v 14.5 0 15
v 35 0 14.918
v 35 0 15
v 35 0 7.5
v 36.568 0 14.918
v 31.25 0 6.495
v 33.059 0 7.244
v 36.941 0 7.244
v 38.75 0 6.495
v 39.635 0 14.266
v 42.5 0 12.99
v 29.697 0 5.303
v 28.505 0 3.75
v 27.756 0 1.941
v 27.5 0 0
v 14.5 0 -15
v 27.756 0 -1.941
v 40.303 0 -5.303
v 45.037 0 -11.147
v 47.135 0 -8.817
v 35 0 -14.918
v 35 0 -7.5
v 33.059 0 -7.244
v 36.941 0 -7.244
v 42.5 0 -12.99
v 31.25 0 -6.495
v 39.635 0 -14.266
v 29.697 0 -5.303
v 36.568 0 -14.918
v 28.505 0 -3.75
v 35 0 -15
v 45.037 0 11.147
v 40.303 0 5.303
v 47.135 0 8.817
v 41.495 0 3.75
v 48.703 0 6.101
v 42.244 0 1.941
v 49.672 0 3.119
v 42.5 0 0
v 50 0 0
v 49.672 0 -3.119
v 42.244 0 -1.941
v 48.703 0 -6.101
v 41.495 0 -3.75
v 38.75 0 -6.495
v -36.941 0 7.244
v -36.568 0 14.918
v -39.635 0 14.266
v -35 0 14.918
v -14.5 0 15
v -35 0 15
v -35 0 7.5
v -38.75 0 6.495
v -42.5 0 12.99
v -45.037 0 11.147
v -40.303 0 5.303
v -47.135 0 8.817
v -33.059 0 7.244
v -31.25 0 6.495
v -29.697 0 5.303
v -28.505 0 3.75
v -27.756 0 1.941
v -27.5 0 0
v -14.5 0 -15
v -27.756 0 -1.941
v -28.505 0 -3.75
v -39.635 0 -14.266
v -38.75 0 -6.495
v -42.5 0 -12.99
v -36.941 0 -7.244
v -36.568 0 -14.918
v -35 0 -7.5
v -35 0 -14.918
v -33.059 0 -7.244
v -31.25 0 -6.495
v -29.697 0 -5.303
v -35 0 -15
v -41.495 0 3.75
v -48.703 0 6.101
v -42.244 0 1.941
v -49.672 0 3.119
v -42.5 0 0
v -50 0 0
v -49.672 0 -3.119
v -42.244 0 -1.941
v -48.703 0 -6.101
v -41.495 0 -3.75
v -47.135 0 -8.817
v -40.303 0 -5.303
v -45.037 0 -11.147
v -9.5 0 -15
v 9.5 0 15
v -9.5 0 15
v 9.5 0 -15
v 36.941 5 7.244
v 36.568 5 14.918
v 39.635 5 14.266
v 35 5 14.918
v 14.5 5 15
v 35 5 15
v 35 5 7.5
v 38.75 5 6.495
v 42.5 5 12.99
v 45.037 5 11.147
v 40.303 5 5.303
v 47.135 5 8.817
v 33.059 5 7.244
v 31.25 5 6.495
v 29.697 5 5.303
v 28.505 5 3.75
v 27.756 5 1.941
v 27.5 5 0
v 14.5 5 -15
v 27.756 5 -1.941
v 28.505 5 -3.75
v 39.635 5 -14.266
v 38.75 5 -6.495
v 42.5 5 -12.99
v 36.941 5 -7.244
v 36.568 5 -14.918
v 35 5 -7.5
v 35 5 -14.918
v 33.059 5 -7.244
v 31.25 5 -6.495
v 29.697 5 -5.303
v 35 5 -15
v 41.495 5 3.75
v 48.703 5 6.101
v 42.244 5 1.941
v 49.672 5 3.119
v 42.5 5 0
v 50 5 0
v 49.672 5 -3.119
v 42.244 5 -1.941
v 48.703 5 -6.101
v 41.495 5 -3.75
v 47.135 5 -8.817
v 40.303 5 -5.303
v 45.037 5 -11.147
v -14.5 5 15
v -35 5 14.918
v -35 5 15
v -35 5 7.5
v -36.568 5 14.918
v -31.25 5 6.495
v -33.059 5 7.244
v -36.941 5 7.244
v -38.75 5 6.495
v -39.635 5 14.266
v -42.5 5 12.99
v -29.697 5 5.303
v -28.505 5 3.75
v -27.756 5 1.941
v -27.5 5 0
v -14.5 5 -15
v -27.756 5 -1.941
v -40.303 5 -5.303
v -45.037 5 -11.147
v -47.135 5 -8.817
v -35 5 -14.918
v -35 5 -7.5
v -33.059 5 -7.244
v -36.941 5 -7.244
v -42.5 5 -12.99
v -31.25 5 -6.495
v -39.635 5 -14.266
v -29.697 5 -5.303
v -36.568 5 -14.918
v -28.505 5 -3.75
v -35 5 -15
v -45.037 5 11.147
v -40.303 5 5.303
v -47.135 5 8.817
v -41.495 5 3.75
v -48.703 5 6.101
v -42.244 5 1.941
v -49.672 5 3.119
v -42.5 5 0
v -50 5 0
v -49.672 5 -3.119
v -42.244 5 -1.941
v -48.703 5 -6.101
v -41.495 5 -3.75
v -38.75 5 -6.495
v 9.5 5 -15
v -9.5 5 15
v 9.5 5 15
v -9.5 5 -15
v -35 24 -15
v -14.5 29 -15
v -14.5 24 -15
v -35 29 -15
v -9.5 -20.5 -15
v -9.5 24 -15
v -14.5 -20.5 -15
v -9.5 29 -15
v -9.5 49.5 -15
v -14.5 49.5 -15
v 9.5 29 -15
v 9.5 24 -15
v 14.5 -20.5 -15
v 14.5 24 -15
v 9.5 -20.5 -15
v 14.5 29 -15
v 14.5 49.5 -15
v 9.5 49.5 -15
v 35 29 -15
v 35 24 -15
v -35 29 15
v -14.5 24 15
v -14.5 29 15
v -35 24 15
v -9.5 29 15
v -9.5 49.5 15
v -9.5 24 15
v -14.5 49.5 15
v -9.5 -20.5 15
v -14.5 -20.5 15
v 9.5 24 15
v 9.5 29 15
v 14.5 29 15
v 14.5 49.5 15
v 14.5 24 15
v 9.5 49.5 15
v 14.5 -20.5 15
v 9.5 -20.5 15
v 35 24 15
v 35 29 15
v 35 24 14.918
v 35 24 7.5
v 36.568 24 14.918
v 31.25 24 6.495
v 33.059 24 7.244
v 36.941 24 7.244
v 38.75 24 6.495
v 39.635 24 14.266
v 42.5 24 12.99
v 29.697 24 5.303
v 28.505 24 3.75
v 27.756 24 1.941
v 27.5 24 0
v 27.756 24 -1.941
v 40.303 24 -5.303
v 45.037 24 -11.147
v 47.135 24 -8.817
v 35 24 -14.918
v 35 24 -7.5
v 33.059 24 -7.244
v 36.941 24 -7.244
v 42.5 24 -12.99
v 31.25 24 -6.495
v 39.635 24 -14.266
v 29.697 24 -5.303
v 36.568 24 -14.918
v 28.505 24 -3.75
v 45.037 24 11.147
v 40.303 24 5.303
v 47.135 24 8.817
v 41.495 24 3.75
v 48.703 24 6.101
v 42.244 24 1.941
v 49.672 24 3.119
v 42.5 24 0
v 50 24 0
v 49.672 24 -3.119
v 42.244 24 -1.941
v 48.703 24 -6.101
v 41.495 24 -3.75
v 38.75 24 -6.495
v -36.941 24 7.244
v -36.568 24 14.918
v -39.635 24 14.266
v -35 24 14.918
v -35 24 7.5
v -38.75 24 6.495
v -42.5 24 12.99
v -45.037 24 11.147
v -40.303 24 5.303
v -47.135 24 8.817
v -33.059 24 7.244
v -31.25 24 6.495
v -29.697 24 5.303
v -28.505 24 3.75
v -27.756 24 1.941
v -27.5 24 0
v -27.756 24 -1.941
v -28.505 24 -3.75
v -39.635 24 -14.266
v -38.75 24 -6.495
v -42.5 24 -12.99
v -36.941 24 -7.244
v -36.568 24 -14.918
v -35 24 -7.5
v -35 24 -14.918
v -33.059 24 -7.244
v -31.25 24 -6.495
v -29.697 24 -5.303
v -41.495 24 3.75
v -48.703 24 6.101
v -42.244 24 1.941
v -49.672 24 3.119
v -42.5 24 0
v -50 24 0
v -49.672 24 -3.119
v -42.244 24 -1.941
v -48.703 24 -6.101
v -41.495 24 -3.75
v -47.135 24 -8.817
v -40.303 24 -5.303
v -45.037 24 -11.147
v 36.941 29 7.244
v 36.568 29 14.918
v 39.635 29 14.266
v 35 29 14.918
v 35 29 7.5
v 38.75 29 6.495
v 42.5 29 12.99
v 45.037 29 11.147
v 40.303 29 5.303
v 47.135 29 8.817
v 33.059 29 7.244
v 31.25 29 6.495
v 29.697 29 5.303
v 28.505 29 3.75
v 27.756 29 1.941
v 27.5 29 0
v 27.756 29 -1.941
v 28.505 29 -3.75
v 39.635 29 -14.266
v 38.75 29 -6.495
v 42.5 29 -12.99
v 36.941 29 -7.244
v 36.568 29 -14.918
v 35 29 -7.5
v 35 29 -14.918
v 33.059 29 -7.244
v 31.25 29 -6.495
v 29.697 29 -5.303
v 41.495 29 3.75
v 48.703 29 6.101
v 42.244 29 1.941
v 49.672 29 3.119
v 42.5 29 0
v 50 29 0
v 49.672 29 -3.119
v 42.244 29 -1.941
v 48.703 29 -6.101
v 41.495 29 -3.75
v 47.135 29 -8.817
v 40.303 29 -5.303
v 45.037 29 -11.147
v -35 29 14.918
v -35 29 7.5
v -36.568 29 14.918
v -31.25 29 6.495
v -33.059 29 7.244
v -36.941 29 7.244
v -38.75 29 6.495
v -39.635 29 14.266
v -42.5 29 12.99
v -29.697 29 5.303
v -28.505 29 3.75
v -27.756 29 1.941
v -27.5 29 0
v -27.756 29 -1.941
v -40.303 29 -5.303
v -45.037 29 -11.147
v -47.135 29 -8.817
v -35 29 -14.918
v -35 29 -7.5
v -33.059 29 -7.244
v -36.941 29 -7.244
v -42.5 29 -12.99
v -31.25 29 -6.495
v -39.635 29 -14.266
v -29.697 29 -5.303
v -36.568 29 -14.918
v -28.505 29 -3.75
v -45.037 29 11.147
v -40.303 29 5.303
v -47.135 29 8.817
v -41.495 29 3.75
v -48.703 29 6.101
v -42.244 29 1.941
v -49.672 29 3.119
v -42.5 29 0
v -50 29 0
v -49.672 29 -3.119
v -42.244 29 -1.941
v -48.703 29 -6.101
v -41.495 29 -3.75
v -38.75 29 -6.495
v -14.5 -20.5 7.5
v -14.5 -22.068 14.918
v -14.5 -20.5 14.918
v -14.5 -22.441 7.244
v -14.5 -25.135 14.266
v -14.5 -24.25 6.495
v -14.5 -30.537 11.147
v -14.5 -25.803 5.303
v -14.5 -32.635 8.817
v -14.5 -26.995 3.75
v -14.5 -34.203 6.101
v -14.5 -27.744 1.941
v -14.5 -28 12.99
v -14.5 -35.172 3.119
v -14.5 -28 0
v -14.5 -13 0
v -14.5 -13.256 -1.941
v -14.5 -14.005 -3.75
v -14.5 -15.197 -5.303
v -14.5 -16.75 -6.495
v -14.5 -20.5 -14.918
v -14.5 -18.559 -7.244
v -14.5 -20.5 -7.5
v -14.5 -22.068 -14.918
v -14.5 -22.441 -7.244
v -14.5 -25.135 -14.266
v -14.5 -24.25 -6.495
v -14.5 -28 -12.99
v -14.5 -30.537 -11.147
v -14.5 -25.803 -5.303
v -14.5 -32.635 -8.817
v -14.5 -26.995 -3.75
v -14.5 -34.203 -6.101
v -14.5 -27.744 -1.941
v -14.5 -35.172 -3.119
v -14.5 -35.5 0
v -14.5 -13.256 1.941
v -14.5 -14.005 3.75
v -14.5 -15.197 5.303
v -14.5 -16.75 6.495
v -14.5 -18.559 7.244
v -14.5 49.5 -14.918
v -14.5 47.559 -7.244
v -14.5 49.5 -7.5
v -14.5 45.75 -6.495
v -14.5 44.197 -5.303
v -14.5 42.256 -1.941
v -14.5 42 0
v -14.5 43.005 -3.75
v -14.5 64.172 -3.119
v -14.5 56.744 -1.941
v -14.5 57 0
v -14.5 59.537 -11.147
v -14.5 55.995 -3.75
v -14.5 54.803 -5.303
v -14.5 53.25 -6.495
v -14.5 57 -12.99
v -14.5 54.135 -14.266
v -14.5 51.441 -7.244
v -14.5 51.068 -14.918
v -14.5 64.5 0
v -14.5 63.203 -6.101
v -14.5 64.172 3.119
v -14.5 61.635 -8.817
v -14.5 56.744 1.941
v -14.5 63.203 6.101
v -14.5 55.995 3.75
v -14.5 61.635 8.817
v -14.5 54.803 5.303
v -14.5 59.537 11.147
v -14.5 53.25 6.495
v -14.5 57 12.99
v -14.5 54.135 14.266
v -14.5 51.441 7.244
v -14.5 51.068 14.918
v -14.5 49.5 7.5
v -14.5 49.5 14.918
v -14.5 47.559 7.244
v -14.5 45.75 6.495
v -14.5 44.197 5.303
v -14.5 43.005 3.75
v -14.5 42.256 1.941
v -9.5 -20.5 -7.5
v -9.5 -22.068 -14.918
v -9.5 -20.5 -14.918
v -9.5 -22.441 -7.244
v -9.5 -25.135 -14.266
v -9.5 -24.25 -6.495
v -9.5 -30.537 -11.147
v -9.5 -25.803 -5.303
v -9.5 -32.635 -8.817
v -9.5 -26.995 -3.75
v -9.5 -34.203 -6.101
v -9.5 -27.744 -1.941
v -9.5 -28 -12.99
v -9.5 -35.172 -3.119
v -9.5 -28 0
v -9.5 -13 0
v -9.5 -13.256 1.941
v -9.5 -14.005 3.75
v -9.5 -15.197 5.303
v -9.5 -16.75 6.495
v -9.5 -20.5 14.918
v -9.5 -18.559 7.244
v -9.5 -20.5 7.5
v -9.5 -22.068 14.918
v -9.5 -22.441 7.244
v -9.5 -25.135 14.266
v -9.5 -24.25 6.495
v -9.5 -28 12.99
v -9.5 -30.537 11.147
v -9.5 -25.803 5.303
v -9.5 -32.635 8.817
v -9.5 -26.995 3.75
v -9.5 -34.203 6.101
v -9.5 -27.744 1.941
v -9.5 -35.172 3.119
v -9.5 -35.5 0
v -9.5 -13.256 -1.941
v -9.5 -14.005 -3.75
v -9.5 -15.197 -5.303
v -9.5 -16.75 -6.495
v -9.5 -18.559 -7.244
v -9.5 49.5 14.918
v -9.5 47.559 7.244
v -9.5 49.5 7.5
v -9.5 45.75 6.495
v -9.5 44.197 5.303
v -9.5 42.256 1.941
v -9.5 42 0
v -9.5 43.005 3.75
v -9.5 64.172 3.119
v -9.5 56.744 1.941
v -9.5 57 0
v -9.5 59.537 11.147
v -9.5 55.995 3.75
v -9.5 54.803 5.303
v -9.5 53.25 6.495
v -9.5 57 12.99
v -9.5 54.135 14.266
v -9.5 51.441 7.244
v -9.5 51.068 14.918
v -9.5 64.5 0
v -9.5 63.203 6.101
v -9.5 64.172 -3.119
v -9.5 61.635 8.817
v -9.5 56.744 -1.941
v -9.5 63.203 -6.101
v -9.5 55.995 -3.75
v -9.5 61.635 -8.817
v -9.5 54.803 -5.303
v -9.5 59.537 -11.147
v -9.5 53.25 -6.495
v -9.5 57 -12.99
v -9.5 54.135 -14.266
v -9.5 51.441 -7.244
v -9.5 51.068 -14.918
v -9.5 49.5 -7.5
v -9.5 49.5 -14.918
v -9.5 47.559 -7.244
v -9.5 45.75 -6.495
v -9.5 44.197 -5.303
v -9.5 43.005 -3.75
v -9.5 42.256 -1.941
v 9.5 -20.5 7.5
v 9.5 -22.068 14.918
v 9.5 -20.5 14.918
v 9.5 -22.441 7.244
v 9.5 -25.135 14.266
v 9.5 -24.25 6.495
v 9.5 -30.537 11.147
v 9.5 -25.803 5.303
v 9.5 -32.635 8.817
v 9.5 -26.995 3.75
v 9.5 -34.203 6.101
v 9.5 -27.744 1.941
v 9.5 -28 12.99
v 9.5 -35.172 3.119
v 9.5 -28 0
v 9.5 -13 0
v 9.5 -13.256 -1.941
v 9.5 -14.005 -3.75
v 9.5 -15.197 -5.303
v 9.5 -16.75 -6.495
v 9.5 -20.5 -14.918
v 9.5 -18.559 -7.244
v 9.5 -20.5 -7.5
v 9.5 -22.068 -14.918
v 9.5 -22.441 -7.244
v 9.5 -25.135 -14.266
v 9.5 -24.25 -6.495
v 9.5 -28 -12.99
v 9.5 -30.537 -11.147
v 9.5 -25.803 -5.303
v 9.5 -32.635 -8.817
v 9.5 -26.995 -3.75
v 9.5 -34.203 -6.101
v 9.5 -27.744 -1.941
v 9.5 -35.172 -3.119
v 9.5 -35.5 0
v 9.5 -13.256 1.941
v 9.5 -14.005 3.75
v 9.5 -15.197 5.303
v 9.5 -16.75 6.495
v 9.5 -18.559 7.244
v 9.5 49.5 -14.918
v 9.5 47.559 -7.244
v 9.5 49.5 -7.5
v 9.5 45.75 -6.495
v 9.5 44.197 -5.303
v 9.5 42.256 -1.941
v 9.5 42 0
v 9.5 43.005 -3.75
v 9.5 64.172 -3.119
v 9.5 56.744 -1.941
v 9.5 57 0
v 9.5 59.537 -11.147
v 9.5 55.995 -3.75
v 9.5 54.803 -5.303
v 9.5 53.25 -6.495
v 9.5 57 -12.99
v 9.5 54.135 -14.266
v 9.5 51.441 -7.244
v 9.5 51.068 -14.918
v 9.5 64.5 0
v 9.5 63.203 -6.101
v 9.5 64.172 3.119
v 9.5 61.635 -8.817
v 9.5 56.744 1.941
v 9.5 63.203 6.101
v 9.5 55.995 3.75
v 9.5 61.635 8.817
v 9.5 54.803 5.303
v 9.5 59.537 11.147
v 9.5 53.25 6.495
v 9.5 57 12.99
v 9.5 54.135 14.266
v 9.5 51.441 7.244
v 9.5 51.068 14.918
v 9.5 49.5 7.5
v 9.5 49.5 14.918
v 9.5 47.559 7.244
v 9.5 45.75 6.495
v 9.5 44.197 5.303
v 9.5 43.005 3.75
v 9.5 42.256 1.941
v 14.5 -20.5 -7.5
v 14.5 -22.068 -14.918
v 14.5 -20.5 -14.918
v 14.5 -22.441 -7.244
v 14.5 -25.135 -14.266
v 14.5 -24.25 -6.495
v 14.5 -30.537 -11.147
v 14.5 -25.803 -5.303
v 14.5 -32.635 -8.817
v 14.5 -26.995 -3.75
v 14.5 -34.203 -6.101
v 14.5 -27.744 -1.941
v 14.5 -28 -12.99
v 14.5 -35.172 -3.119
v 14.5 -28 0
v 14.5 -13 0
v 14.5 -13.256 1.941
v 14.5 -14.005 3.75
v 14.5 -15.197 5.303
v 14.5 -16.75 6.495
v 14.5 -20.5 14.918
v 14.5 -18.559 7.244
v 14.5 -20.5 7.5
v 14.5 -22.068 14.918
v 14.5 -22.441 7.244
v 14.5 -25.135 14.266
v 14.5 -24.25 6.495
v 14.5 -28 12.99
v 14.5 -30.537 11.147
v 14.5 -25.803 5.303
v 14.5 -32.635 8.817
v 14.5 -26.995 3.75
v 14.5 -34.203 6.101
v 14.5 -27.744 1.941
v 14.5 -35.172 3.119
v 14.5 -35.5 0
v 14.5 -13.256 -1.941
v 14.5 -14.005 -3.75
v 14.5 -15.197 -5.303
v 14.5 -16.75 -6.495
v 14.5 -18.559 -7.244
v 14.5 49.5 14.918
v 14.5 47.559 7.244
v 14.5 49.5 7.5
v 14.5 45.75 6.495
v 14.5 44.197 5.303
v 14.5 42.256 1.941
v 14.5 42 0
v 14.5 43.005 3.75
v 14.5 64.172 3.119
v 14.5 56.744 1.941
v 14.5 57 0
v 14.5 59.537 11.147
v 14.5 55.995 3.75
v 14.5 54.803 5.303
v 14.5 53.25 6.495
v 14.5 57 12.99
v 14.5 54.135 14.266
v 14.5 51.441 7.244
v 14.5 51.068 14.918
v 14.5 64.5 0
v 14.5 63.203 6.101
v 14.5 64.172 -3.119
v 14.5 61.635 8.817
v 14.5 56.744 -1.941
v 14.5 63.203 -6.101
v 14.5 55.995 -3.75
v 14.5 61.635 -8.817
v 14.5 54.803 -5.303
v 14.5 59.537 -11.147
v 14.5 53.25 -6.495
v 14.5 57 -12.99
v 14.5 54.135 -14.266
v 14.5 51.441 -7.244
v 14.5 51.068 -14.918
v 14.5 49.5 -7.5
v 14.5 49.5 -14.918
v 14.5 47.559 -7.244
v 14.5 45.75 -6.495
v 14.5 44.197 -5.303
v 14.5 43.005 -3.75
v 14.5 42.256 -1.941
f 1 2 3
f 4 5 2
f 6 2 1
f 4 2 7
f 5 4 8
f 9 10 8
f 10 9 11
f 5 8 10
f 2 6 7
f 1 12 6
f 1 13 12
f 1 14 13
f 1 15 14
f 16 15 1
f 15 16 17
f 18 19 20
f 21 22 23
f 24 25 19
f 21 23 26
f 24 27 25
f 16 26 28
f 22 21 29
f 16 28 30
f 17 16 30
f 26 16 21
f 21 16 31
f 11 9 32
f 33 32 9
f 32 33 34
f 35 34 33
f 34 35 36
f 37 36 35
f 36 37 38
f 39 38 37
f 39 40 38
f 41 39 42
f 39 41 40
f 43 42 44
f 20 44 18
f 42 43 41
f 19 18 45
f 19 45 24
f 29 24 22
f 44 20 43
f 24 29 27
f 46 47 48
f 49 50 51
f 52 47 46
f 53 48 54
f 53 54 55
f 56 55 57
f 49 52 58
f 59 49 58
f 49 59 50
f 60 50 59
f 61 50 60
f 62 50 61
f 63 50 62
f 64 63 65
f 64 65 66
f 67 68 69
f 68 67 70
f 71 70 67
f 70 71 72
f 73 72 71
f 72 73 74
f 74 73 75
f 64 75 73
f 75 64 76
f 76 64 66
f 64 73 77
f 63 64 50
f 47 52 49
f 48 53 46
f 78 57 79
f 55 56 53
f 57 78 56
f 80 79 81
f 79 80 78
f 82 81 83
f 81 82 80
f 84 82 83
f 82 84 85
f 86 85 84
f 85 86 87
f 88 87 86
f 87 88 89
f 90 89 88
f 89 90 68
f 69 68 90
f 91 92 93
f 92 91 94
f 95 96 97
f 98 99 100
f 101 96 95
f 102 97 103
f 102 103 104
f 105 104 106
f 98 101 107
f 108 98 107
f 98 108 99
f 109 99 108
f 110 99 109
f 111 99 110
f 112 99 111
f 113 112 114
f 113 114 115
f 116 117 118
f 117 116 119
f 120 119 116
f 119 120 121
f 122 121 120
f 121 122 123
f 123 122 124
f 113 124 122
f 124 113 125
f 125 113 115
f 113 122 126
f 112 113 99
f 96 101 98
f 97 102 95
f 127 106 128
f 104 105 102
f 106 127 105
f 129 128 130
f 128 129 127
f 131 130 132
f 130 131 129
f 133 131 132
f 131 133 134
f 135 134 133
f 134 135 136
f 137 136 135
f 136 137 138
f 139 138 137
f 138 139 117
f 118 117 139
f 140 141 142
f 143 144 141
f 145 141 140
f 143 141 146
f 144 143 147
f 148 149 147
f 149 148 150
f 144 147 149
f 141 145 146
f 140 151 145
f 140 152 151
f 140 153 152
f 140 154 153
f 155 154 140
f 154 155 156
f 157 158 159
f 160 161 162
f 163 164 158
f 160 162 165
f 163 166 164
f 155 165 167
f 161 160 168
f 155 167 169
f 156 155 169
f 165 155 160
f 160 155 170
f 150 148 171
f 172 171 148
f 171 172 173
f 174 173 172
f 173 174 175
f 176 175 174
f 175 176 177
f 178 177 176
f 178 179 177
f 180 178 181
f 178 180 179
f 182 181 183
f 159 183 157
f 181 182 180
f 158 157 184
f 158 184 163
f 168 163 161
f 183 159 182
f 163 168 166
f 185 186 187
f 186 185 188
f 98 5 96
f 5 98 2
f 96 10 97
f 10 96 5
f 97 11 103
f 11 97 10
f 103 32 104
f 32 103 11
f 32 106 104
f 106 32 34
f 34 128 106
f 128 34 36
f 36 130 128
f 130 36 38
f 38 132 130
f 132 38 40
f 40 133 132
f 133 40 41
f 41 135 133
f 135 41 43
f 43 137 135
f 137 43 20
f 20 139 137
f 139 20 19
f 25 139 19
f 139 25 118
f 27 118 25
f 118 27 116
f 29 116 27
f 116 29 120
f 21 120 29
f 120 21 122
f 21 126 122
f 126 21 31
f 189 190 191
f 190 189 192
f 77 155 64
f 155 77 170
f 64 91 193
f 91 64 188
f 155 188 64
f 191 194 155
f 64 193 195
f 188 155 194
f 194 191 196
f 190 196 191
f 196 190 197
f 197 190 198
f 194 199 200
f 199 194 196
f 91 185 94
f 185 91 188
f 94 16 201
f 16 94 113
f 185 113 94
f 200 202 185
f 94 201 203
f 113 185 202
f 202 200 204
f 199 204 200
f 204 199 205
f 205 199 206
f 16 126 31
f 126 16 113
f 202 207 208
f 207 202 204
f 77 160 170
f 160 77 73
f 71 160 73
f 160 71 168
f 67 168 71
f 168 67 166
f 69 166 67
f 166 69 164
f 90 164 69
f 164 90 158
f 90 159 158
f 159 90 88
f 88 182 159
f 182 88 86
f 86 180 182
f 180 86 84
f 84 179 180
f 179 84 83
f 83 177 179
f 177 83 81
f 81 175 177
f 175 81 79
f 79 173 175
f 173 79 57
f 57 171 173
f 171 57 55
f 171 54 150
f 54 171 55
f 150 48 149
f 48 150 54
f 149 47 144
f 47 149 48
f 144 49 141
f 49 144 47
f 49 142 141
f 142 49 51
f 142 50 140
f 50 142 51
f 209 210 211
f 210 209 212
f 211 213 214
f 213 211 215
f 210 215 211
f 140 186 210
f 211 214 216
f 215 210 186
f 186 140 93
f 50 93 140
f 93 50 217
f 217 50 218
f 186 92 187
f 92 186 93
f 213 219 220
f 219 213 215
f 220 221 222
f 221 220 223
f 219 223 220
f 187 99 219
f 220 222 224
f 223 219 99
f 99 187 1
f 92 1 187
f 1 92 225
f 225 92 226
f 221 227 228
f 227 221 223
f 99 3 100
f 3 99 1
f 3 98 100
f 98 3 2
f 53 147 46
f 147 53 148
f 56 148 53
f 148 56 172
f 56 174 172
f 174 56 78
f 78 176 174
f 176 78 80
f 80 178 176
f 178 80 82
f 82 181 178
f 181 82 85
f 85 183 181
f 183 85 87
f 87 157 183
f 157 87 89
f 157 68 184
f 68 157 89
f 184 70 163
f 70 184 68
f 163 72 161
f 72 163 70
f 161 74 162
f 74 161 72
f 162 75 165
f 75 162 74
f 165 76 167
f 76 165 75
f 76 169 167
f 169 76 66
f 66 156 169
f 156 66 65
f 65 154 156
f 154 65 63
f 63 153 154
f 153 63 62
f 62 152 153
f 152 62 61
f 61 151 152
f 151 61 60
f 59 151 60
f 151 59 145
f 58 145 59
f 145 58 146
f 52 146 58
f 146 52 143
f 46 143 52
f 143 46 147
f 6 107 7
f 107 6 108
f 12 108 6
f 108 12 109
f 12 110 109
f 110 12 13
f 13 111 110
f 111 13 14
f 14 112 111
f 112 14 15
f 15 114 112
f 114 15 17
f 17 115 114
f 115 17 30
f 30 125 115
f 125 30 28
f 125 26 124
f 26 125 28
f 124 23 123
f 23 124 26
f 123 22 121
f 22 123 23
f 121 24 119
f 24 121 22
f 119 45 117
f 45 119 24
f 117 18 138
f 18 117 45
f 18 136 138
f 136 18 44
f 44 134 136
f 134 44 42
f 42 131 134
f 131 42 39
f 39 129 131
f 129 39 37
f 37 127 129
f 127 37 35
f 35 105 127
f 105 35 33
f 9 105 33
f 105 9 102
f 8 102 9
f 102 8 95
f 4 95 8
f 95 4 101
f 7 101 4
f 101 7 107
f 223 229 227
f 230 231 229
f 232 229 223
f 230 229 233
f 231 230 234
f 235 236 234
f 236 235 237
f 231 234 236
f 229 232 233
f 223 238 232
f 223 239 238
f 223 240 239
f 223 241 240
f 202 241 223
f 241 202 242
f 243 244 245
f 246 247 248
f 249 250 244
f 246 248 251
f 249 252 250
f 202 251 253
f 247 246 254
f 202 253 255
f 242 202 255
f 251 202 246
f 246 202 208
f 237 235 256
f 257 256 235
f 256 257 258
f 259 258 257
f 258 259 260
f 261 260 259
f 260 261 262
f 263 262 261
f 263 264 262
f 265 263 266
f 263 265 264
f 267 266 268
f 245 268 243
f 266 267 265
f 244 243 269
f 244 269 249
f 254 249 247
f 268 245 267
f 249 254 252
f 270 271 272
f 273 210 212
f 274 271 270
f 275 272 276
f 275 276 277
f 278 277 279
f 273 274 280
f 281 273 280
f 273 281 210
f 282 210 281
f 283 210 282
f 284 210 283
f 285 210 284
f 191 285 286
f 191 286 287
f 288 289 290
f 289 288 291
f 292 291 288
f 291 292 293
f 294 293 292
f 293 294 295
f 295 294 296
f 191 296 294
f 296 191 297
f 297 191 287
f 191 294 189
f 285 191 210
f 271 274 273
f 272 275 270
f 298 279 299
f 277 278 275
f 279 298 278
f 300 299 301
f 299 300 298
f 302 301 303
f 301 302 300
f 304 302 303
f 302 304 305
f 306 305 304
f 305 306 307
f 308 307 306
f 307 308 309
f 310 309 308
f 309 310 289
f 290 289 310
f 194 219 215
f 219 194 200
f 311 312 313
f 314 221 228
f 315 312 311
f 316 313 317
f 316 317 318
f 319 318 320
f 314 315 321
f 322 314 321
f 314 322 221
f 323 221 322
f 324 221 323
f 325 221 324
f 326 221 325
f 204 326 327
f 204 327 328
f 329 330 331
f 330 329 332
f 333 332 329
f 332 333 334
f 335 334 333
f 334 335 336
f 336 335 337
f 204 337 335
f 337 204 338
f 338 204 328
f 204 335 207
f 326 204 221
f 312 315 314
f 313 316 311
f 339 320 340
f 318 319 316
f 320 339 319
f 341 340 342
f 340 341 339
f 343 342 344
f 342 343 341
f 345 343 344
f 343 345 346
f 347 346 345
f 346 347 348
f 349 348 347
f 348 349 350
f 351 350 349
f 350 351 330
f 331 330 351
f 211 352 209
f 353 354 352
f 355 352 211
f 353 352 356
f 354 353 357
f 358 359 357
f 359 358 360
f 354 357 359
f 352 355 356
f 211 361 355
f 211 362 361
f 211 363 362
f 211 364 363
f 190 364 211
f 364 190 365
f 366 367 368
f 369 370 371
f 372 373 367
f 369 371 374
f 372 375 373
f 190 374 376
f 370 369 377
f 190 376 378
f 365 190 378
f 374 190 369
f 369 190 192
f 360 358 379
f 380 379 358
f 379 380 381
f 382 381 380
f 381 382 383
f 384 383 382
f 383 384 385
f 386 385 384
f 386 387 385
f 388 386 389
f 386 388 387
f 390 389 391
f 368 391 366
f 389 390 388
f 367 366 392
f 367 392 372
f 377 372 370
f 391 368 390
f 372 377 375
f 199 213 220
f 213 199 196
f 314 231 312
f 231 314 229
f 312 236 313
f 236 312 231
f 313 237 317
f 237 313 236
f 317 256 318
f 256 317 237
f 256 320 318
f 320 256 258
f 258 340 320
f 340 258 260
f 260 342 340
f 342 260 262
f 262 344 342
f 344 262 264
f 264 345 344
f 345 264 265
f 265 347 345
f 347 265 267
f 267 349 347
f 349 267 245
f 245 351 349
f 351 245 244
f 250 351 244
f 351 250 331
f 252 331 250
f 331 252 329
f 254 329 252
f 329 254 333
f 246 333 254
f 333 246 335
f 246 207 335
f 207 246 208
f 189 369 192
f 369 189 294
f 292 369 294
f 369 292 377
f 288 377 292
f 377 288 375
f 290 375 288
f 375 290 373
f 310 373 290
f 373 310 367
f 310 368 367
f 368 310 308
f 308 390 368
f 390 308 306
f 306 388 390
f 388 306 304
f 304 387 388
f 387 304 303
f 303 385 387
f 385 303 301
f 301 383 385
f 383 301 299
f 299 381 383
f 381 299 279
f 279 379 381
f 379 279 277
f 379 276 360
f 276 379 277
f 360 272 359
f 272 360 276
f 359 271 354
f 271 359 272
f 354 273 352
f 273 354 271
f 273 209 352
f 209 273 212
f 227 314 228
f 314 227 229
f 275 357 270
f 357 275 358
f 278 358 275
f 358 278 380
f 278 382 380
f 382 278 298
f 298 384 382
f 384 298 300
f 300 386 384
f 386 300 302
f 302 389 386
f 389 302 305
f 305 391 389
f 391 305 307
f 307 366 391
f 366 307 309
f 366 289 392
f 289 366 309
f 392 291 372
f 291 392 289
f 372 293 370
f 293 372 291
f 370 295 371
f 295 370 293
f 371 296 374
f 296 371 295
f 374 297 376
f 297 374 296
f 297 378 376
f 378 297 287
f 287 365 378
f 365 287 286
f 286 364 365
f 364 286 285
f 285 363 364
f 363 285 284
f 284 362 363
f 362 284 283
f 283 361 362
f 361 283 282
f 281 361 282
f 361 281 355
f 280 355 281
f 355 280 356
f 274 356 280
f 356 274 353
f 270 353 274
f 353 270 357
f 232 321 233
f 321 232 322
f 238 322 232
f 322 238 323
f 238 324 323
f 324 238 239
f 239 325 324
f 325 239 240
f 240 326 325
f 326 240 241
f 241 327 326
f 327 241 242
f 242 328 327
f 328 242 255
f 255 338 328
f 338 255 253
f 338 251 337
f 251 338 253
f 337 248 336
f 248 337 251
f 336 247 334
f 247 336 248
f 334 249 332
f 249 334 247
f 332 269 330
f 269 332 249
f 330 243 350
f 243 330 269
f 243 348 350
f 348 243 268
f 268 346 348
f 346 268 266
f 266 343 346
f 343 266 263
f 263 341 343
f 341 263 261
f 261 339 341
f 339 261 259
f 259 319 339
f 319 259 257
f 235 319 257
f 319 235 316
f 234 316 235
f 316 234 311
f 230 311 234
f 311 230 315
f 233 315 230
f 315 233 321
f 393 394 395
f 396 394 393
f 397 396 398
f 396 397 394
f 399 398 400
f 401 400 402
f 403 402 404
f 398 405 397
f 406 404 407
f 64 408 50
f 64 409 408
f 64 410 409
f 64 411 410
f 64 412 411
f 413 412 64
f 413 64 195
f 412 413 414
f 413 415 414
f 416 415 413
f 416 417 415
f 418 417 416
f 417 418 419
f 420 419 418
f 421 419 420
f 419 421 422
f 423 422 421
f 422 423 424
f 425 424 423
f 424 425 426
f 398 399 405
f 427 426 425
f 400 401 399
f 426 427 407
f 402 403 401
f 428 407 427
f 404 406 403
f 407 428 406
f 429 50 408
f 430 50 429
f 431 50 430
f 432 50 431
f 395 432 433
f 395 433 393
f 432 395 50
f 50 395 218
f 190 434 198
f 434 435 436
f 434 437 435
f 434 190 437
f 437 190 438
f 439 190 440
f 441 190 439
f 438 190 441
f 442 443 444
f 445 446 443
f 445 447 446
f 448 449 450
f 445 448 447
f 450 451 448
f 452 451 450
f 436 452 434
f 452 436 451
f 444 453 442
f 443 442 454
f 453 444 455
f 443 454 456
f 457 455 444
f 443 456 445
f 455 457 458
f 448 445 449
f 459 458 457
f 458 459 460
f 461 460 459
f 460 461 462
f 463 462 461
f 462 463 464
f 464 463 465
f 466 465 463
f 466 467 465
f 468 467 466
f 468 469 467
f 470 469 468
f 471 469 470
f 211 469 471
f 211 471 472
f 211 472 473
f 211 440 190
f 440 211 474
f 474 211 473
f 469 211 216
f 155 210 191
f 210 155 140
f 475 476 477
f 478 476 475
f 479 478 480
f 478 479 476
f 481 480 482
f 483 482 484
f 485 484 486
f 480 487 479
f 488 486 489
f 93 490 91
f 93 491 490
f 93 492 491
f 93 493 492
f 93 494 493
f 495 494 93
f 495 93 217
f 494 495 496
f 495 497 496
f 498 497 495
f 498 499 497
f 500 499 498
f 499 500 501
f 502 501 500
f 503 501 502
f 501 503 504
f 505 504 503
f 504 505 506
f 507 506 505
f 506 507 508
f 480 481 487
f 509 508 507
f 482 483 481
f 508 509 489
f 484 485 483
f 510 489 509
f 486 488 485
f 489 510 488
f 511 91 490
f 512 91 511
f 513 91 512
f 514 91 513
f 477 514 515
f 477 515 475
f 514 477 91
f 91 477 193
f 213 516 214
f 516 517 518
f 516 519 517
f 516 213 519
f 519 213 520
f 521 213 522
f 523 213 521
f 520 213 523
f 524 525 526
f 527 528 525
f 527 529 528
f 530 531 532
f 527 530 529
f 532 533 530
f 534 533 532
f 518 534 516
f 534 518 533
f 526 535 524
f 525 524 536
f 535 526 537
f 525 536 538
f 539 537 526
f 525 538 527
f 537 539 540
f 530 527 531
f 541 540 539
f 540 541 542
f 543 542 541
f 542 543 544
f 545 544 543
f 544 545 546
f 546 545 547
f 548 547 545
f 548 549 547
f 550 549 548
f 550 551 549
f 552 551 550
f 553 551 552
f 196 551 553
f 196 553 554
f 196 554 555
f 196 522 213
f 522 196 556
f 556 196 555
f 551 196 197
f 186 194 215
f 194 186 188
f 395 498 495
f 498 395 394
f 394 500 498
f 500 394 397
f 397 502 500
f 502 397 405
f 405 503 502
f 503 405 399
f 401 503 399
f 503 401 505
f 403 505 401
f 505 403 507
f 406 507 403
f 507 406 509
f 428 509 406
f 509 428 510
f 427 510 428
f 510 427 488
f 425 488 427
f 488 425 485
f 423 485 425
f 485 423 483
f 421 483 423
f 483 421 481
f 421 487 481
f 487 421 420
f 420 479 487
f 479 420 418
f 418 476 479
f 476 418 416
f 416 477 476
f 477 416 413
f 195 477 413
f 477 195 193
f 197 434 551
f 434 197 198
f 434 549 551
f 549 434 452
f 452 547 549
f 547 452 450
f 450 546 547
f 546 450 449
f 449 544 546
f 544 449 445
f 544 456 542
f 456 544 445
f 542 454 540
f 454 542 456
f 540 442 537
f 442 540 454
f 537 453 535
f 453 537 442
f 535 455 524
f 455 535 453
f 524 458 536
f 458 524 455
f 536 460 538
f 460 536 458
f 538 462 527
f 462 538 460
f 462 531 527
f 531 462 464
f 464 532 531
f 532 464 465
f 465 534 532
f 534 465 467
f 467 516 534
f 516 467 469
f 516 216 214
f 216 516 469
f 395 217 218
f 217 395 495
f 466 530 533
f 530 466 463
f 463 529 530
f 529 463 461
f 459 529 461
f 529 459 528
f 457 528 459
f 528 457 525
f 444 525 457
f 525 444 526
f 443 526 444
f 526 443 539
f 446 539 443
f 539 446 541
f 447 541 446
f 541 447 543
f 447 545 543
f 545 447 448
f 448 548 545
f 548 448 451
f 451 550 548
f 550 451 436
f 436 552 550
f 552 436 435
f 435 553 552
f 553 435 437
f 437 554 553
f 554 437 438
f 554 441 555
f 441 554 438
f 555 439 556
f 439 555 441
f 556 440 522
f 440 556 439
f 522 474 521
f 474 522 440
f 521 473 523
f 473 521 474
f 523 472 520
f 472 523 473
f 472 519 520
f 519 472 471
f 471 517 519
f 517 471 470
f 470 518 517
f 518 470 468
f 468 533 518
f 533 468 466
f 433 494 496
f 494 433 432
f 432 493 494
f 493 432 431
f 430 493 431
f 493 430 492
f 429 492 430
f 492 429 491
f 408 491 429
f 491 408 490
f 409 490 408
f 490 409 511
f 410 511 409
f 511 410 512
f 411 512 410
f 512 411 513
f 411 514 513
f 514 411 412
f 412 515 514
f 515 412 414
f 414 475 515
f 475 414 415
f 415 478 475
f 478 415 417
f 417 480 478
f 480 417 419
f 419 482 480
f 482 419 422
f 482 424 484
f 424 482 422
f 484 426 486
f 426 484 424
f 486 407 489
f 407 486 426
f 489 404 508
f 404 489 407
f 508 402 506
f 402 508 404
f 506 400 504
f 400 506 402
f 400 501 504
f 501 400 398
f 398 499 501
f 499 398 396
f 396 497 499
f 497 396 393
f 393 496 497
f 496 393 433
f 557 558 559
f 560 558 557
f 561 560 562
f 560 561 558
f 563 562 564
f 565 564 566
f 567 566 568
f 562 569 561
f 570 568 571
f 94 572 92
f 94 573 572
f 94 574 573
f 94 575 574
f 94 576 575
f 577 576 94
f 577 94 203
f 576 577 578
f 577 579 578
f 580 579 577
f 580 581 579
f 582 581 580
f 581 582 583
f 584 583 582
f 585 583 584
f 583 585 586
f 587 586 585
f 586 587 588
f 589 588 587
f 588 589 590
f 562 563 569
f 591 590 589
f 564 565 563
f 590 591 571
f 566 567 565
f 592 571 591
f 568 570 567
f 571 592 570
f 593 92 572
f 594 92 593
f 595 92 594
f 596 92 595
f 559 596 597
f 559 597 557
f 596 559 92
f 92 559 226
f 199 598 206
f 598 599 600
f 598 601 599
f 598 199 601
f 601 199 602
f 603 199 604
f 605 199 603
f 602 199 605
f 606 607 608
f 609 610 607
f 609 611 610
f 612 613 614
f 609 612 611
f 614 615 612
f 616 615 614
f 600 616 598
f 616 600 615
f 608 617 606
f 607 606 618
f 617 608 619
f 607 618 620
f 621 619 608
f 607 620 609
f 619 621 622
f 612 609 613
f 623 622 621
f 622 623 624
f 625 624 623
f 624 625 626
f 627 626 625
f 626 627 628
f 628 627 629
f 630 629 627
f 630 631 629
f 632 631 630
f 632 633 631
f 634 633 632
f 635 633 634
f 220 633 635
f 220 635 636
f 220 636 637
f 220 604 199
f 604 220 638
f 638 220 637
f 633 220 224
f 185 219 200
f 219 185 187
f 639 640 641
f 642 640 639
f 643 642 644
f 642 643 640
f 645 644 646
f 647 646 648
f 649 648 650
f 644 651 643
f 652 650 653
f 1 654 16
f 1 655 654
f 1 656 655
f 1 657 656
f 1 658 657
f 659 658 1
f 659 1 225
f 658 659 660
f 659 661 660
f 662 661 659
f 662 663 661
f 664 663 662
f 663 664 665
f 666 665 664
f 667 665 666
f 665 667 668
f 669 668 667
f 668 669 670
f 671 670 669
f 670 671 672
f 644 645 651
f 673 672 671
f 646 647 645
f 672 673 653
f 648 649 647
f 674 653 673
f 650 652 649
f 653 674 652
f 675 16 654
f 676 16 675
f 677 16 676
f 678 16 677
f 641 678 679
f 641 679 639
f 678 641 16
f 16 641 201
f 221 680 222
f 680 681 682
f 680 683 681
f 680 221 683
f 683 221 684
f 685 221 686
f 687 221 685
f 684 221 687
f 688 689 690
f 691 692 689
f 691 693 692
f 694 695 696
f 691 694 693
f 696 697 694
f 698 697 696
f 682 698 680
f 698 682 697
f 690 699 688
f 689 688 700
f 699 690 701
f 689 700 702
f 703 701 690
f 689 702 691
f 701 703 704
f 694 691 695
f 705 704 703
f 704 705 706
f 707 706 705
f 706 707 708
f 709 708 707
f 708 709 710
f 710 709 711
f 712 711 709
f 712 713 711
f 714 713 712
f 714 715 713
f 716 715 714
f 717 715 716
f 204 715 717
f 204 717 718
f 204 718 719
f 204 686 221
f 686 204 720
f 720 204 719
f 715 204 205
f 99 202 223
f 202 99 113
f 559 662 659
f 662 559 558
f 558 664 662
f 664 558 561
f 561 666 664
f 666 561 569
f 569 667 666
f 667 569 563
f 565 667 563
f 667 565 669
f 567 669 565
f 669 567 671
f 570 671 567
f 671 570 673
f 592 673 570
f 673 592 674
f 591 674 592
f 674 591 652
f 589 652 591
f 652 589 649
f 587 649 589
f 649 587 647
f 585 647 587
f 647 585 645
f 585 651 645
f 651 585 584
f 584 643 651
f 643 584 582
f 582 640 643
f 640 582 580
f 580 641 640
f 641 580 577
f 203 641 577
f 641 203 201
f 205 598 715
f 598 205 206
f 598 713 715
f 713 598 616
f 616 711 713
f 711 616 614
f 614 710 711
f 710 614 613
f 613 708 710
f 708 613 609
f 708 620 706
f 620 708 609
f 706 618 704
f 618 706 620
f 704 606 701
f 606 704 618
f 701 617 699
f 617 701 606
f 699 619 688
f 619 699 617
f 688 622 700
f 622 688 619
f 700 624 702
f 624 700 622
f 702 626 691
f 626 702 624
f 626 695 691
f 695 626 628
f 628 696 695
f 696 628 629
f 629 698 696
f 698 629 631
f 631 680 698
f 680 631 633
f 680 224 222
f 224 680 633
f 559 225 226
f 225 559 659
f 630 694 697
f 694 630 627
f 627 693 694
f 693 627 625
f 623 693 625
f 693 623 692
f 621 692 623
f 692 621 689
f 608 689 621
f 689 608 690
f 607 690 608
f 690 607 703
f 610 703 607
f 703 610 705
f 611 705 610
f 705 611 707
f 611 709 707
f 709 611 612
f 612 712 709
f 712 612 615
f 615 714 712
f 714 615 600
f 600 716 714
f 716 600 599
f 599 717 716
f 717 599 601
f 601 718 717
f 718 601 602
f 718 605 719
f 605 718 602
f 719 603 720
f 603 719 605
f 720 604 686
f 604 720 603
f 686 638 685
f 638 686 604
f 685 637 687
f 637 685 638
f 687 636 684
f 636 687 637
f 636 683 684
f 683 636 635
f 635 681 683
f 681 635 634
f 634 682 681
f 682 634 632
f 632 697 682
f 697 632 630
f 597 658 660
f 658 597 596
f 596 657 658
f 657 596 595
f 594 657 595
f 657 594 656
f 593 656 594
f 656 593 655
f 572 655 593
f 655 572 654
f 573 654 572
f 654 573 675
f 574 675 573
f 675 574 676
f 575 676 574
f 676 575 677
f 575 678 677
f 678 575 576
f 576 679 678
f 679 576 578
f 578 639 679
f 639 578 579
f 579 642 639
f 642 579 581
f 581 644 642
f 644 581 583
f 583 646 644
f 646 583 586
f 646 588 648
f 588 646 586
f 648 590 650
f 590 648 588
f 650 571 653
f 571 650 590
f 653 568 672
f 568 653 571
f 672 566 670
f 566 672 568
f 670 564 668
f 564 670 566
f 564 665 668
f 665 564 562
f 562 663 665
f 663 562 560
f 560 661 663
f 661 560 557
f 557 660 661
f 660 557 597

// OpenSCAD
module longPlate() {
    linear_extrude(5)
    difference() {
        union() {
            translate([-35,-15]) square([70,30]);
            translate([-35,0]) circle(15);
            translate([35,0]) circle(15);
        }
        
        translate([-35,0]) circle(7.5);
        translate([35,0]) circle(7.5);
    }
}

rotate(-[90,0,0]) longPlate();
translate([0,5+19,0]) rotate(-[90,0,0]) longPlate();
translate([-(5+19/2),5+19/2,0]) rotate(-[90,0,90]) longPlate();
translate([19/2,5+19/2,0]) rotate(-[90,0,90]) longPlate();
